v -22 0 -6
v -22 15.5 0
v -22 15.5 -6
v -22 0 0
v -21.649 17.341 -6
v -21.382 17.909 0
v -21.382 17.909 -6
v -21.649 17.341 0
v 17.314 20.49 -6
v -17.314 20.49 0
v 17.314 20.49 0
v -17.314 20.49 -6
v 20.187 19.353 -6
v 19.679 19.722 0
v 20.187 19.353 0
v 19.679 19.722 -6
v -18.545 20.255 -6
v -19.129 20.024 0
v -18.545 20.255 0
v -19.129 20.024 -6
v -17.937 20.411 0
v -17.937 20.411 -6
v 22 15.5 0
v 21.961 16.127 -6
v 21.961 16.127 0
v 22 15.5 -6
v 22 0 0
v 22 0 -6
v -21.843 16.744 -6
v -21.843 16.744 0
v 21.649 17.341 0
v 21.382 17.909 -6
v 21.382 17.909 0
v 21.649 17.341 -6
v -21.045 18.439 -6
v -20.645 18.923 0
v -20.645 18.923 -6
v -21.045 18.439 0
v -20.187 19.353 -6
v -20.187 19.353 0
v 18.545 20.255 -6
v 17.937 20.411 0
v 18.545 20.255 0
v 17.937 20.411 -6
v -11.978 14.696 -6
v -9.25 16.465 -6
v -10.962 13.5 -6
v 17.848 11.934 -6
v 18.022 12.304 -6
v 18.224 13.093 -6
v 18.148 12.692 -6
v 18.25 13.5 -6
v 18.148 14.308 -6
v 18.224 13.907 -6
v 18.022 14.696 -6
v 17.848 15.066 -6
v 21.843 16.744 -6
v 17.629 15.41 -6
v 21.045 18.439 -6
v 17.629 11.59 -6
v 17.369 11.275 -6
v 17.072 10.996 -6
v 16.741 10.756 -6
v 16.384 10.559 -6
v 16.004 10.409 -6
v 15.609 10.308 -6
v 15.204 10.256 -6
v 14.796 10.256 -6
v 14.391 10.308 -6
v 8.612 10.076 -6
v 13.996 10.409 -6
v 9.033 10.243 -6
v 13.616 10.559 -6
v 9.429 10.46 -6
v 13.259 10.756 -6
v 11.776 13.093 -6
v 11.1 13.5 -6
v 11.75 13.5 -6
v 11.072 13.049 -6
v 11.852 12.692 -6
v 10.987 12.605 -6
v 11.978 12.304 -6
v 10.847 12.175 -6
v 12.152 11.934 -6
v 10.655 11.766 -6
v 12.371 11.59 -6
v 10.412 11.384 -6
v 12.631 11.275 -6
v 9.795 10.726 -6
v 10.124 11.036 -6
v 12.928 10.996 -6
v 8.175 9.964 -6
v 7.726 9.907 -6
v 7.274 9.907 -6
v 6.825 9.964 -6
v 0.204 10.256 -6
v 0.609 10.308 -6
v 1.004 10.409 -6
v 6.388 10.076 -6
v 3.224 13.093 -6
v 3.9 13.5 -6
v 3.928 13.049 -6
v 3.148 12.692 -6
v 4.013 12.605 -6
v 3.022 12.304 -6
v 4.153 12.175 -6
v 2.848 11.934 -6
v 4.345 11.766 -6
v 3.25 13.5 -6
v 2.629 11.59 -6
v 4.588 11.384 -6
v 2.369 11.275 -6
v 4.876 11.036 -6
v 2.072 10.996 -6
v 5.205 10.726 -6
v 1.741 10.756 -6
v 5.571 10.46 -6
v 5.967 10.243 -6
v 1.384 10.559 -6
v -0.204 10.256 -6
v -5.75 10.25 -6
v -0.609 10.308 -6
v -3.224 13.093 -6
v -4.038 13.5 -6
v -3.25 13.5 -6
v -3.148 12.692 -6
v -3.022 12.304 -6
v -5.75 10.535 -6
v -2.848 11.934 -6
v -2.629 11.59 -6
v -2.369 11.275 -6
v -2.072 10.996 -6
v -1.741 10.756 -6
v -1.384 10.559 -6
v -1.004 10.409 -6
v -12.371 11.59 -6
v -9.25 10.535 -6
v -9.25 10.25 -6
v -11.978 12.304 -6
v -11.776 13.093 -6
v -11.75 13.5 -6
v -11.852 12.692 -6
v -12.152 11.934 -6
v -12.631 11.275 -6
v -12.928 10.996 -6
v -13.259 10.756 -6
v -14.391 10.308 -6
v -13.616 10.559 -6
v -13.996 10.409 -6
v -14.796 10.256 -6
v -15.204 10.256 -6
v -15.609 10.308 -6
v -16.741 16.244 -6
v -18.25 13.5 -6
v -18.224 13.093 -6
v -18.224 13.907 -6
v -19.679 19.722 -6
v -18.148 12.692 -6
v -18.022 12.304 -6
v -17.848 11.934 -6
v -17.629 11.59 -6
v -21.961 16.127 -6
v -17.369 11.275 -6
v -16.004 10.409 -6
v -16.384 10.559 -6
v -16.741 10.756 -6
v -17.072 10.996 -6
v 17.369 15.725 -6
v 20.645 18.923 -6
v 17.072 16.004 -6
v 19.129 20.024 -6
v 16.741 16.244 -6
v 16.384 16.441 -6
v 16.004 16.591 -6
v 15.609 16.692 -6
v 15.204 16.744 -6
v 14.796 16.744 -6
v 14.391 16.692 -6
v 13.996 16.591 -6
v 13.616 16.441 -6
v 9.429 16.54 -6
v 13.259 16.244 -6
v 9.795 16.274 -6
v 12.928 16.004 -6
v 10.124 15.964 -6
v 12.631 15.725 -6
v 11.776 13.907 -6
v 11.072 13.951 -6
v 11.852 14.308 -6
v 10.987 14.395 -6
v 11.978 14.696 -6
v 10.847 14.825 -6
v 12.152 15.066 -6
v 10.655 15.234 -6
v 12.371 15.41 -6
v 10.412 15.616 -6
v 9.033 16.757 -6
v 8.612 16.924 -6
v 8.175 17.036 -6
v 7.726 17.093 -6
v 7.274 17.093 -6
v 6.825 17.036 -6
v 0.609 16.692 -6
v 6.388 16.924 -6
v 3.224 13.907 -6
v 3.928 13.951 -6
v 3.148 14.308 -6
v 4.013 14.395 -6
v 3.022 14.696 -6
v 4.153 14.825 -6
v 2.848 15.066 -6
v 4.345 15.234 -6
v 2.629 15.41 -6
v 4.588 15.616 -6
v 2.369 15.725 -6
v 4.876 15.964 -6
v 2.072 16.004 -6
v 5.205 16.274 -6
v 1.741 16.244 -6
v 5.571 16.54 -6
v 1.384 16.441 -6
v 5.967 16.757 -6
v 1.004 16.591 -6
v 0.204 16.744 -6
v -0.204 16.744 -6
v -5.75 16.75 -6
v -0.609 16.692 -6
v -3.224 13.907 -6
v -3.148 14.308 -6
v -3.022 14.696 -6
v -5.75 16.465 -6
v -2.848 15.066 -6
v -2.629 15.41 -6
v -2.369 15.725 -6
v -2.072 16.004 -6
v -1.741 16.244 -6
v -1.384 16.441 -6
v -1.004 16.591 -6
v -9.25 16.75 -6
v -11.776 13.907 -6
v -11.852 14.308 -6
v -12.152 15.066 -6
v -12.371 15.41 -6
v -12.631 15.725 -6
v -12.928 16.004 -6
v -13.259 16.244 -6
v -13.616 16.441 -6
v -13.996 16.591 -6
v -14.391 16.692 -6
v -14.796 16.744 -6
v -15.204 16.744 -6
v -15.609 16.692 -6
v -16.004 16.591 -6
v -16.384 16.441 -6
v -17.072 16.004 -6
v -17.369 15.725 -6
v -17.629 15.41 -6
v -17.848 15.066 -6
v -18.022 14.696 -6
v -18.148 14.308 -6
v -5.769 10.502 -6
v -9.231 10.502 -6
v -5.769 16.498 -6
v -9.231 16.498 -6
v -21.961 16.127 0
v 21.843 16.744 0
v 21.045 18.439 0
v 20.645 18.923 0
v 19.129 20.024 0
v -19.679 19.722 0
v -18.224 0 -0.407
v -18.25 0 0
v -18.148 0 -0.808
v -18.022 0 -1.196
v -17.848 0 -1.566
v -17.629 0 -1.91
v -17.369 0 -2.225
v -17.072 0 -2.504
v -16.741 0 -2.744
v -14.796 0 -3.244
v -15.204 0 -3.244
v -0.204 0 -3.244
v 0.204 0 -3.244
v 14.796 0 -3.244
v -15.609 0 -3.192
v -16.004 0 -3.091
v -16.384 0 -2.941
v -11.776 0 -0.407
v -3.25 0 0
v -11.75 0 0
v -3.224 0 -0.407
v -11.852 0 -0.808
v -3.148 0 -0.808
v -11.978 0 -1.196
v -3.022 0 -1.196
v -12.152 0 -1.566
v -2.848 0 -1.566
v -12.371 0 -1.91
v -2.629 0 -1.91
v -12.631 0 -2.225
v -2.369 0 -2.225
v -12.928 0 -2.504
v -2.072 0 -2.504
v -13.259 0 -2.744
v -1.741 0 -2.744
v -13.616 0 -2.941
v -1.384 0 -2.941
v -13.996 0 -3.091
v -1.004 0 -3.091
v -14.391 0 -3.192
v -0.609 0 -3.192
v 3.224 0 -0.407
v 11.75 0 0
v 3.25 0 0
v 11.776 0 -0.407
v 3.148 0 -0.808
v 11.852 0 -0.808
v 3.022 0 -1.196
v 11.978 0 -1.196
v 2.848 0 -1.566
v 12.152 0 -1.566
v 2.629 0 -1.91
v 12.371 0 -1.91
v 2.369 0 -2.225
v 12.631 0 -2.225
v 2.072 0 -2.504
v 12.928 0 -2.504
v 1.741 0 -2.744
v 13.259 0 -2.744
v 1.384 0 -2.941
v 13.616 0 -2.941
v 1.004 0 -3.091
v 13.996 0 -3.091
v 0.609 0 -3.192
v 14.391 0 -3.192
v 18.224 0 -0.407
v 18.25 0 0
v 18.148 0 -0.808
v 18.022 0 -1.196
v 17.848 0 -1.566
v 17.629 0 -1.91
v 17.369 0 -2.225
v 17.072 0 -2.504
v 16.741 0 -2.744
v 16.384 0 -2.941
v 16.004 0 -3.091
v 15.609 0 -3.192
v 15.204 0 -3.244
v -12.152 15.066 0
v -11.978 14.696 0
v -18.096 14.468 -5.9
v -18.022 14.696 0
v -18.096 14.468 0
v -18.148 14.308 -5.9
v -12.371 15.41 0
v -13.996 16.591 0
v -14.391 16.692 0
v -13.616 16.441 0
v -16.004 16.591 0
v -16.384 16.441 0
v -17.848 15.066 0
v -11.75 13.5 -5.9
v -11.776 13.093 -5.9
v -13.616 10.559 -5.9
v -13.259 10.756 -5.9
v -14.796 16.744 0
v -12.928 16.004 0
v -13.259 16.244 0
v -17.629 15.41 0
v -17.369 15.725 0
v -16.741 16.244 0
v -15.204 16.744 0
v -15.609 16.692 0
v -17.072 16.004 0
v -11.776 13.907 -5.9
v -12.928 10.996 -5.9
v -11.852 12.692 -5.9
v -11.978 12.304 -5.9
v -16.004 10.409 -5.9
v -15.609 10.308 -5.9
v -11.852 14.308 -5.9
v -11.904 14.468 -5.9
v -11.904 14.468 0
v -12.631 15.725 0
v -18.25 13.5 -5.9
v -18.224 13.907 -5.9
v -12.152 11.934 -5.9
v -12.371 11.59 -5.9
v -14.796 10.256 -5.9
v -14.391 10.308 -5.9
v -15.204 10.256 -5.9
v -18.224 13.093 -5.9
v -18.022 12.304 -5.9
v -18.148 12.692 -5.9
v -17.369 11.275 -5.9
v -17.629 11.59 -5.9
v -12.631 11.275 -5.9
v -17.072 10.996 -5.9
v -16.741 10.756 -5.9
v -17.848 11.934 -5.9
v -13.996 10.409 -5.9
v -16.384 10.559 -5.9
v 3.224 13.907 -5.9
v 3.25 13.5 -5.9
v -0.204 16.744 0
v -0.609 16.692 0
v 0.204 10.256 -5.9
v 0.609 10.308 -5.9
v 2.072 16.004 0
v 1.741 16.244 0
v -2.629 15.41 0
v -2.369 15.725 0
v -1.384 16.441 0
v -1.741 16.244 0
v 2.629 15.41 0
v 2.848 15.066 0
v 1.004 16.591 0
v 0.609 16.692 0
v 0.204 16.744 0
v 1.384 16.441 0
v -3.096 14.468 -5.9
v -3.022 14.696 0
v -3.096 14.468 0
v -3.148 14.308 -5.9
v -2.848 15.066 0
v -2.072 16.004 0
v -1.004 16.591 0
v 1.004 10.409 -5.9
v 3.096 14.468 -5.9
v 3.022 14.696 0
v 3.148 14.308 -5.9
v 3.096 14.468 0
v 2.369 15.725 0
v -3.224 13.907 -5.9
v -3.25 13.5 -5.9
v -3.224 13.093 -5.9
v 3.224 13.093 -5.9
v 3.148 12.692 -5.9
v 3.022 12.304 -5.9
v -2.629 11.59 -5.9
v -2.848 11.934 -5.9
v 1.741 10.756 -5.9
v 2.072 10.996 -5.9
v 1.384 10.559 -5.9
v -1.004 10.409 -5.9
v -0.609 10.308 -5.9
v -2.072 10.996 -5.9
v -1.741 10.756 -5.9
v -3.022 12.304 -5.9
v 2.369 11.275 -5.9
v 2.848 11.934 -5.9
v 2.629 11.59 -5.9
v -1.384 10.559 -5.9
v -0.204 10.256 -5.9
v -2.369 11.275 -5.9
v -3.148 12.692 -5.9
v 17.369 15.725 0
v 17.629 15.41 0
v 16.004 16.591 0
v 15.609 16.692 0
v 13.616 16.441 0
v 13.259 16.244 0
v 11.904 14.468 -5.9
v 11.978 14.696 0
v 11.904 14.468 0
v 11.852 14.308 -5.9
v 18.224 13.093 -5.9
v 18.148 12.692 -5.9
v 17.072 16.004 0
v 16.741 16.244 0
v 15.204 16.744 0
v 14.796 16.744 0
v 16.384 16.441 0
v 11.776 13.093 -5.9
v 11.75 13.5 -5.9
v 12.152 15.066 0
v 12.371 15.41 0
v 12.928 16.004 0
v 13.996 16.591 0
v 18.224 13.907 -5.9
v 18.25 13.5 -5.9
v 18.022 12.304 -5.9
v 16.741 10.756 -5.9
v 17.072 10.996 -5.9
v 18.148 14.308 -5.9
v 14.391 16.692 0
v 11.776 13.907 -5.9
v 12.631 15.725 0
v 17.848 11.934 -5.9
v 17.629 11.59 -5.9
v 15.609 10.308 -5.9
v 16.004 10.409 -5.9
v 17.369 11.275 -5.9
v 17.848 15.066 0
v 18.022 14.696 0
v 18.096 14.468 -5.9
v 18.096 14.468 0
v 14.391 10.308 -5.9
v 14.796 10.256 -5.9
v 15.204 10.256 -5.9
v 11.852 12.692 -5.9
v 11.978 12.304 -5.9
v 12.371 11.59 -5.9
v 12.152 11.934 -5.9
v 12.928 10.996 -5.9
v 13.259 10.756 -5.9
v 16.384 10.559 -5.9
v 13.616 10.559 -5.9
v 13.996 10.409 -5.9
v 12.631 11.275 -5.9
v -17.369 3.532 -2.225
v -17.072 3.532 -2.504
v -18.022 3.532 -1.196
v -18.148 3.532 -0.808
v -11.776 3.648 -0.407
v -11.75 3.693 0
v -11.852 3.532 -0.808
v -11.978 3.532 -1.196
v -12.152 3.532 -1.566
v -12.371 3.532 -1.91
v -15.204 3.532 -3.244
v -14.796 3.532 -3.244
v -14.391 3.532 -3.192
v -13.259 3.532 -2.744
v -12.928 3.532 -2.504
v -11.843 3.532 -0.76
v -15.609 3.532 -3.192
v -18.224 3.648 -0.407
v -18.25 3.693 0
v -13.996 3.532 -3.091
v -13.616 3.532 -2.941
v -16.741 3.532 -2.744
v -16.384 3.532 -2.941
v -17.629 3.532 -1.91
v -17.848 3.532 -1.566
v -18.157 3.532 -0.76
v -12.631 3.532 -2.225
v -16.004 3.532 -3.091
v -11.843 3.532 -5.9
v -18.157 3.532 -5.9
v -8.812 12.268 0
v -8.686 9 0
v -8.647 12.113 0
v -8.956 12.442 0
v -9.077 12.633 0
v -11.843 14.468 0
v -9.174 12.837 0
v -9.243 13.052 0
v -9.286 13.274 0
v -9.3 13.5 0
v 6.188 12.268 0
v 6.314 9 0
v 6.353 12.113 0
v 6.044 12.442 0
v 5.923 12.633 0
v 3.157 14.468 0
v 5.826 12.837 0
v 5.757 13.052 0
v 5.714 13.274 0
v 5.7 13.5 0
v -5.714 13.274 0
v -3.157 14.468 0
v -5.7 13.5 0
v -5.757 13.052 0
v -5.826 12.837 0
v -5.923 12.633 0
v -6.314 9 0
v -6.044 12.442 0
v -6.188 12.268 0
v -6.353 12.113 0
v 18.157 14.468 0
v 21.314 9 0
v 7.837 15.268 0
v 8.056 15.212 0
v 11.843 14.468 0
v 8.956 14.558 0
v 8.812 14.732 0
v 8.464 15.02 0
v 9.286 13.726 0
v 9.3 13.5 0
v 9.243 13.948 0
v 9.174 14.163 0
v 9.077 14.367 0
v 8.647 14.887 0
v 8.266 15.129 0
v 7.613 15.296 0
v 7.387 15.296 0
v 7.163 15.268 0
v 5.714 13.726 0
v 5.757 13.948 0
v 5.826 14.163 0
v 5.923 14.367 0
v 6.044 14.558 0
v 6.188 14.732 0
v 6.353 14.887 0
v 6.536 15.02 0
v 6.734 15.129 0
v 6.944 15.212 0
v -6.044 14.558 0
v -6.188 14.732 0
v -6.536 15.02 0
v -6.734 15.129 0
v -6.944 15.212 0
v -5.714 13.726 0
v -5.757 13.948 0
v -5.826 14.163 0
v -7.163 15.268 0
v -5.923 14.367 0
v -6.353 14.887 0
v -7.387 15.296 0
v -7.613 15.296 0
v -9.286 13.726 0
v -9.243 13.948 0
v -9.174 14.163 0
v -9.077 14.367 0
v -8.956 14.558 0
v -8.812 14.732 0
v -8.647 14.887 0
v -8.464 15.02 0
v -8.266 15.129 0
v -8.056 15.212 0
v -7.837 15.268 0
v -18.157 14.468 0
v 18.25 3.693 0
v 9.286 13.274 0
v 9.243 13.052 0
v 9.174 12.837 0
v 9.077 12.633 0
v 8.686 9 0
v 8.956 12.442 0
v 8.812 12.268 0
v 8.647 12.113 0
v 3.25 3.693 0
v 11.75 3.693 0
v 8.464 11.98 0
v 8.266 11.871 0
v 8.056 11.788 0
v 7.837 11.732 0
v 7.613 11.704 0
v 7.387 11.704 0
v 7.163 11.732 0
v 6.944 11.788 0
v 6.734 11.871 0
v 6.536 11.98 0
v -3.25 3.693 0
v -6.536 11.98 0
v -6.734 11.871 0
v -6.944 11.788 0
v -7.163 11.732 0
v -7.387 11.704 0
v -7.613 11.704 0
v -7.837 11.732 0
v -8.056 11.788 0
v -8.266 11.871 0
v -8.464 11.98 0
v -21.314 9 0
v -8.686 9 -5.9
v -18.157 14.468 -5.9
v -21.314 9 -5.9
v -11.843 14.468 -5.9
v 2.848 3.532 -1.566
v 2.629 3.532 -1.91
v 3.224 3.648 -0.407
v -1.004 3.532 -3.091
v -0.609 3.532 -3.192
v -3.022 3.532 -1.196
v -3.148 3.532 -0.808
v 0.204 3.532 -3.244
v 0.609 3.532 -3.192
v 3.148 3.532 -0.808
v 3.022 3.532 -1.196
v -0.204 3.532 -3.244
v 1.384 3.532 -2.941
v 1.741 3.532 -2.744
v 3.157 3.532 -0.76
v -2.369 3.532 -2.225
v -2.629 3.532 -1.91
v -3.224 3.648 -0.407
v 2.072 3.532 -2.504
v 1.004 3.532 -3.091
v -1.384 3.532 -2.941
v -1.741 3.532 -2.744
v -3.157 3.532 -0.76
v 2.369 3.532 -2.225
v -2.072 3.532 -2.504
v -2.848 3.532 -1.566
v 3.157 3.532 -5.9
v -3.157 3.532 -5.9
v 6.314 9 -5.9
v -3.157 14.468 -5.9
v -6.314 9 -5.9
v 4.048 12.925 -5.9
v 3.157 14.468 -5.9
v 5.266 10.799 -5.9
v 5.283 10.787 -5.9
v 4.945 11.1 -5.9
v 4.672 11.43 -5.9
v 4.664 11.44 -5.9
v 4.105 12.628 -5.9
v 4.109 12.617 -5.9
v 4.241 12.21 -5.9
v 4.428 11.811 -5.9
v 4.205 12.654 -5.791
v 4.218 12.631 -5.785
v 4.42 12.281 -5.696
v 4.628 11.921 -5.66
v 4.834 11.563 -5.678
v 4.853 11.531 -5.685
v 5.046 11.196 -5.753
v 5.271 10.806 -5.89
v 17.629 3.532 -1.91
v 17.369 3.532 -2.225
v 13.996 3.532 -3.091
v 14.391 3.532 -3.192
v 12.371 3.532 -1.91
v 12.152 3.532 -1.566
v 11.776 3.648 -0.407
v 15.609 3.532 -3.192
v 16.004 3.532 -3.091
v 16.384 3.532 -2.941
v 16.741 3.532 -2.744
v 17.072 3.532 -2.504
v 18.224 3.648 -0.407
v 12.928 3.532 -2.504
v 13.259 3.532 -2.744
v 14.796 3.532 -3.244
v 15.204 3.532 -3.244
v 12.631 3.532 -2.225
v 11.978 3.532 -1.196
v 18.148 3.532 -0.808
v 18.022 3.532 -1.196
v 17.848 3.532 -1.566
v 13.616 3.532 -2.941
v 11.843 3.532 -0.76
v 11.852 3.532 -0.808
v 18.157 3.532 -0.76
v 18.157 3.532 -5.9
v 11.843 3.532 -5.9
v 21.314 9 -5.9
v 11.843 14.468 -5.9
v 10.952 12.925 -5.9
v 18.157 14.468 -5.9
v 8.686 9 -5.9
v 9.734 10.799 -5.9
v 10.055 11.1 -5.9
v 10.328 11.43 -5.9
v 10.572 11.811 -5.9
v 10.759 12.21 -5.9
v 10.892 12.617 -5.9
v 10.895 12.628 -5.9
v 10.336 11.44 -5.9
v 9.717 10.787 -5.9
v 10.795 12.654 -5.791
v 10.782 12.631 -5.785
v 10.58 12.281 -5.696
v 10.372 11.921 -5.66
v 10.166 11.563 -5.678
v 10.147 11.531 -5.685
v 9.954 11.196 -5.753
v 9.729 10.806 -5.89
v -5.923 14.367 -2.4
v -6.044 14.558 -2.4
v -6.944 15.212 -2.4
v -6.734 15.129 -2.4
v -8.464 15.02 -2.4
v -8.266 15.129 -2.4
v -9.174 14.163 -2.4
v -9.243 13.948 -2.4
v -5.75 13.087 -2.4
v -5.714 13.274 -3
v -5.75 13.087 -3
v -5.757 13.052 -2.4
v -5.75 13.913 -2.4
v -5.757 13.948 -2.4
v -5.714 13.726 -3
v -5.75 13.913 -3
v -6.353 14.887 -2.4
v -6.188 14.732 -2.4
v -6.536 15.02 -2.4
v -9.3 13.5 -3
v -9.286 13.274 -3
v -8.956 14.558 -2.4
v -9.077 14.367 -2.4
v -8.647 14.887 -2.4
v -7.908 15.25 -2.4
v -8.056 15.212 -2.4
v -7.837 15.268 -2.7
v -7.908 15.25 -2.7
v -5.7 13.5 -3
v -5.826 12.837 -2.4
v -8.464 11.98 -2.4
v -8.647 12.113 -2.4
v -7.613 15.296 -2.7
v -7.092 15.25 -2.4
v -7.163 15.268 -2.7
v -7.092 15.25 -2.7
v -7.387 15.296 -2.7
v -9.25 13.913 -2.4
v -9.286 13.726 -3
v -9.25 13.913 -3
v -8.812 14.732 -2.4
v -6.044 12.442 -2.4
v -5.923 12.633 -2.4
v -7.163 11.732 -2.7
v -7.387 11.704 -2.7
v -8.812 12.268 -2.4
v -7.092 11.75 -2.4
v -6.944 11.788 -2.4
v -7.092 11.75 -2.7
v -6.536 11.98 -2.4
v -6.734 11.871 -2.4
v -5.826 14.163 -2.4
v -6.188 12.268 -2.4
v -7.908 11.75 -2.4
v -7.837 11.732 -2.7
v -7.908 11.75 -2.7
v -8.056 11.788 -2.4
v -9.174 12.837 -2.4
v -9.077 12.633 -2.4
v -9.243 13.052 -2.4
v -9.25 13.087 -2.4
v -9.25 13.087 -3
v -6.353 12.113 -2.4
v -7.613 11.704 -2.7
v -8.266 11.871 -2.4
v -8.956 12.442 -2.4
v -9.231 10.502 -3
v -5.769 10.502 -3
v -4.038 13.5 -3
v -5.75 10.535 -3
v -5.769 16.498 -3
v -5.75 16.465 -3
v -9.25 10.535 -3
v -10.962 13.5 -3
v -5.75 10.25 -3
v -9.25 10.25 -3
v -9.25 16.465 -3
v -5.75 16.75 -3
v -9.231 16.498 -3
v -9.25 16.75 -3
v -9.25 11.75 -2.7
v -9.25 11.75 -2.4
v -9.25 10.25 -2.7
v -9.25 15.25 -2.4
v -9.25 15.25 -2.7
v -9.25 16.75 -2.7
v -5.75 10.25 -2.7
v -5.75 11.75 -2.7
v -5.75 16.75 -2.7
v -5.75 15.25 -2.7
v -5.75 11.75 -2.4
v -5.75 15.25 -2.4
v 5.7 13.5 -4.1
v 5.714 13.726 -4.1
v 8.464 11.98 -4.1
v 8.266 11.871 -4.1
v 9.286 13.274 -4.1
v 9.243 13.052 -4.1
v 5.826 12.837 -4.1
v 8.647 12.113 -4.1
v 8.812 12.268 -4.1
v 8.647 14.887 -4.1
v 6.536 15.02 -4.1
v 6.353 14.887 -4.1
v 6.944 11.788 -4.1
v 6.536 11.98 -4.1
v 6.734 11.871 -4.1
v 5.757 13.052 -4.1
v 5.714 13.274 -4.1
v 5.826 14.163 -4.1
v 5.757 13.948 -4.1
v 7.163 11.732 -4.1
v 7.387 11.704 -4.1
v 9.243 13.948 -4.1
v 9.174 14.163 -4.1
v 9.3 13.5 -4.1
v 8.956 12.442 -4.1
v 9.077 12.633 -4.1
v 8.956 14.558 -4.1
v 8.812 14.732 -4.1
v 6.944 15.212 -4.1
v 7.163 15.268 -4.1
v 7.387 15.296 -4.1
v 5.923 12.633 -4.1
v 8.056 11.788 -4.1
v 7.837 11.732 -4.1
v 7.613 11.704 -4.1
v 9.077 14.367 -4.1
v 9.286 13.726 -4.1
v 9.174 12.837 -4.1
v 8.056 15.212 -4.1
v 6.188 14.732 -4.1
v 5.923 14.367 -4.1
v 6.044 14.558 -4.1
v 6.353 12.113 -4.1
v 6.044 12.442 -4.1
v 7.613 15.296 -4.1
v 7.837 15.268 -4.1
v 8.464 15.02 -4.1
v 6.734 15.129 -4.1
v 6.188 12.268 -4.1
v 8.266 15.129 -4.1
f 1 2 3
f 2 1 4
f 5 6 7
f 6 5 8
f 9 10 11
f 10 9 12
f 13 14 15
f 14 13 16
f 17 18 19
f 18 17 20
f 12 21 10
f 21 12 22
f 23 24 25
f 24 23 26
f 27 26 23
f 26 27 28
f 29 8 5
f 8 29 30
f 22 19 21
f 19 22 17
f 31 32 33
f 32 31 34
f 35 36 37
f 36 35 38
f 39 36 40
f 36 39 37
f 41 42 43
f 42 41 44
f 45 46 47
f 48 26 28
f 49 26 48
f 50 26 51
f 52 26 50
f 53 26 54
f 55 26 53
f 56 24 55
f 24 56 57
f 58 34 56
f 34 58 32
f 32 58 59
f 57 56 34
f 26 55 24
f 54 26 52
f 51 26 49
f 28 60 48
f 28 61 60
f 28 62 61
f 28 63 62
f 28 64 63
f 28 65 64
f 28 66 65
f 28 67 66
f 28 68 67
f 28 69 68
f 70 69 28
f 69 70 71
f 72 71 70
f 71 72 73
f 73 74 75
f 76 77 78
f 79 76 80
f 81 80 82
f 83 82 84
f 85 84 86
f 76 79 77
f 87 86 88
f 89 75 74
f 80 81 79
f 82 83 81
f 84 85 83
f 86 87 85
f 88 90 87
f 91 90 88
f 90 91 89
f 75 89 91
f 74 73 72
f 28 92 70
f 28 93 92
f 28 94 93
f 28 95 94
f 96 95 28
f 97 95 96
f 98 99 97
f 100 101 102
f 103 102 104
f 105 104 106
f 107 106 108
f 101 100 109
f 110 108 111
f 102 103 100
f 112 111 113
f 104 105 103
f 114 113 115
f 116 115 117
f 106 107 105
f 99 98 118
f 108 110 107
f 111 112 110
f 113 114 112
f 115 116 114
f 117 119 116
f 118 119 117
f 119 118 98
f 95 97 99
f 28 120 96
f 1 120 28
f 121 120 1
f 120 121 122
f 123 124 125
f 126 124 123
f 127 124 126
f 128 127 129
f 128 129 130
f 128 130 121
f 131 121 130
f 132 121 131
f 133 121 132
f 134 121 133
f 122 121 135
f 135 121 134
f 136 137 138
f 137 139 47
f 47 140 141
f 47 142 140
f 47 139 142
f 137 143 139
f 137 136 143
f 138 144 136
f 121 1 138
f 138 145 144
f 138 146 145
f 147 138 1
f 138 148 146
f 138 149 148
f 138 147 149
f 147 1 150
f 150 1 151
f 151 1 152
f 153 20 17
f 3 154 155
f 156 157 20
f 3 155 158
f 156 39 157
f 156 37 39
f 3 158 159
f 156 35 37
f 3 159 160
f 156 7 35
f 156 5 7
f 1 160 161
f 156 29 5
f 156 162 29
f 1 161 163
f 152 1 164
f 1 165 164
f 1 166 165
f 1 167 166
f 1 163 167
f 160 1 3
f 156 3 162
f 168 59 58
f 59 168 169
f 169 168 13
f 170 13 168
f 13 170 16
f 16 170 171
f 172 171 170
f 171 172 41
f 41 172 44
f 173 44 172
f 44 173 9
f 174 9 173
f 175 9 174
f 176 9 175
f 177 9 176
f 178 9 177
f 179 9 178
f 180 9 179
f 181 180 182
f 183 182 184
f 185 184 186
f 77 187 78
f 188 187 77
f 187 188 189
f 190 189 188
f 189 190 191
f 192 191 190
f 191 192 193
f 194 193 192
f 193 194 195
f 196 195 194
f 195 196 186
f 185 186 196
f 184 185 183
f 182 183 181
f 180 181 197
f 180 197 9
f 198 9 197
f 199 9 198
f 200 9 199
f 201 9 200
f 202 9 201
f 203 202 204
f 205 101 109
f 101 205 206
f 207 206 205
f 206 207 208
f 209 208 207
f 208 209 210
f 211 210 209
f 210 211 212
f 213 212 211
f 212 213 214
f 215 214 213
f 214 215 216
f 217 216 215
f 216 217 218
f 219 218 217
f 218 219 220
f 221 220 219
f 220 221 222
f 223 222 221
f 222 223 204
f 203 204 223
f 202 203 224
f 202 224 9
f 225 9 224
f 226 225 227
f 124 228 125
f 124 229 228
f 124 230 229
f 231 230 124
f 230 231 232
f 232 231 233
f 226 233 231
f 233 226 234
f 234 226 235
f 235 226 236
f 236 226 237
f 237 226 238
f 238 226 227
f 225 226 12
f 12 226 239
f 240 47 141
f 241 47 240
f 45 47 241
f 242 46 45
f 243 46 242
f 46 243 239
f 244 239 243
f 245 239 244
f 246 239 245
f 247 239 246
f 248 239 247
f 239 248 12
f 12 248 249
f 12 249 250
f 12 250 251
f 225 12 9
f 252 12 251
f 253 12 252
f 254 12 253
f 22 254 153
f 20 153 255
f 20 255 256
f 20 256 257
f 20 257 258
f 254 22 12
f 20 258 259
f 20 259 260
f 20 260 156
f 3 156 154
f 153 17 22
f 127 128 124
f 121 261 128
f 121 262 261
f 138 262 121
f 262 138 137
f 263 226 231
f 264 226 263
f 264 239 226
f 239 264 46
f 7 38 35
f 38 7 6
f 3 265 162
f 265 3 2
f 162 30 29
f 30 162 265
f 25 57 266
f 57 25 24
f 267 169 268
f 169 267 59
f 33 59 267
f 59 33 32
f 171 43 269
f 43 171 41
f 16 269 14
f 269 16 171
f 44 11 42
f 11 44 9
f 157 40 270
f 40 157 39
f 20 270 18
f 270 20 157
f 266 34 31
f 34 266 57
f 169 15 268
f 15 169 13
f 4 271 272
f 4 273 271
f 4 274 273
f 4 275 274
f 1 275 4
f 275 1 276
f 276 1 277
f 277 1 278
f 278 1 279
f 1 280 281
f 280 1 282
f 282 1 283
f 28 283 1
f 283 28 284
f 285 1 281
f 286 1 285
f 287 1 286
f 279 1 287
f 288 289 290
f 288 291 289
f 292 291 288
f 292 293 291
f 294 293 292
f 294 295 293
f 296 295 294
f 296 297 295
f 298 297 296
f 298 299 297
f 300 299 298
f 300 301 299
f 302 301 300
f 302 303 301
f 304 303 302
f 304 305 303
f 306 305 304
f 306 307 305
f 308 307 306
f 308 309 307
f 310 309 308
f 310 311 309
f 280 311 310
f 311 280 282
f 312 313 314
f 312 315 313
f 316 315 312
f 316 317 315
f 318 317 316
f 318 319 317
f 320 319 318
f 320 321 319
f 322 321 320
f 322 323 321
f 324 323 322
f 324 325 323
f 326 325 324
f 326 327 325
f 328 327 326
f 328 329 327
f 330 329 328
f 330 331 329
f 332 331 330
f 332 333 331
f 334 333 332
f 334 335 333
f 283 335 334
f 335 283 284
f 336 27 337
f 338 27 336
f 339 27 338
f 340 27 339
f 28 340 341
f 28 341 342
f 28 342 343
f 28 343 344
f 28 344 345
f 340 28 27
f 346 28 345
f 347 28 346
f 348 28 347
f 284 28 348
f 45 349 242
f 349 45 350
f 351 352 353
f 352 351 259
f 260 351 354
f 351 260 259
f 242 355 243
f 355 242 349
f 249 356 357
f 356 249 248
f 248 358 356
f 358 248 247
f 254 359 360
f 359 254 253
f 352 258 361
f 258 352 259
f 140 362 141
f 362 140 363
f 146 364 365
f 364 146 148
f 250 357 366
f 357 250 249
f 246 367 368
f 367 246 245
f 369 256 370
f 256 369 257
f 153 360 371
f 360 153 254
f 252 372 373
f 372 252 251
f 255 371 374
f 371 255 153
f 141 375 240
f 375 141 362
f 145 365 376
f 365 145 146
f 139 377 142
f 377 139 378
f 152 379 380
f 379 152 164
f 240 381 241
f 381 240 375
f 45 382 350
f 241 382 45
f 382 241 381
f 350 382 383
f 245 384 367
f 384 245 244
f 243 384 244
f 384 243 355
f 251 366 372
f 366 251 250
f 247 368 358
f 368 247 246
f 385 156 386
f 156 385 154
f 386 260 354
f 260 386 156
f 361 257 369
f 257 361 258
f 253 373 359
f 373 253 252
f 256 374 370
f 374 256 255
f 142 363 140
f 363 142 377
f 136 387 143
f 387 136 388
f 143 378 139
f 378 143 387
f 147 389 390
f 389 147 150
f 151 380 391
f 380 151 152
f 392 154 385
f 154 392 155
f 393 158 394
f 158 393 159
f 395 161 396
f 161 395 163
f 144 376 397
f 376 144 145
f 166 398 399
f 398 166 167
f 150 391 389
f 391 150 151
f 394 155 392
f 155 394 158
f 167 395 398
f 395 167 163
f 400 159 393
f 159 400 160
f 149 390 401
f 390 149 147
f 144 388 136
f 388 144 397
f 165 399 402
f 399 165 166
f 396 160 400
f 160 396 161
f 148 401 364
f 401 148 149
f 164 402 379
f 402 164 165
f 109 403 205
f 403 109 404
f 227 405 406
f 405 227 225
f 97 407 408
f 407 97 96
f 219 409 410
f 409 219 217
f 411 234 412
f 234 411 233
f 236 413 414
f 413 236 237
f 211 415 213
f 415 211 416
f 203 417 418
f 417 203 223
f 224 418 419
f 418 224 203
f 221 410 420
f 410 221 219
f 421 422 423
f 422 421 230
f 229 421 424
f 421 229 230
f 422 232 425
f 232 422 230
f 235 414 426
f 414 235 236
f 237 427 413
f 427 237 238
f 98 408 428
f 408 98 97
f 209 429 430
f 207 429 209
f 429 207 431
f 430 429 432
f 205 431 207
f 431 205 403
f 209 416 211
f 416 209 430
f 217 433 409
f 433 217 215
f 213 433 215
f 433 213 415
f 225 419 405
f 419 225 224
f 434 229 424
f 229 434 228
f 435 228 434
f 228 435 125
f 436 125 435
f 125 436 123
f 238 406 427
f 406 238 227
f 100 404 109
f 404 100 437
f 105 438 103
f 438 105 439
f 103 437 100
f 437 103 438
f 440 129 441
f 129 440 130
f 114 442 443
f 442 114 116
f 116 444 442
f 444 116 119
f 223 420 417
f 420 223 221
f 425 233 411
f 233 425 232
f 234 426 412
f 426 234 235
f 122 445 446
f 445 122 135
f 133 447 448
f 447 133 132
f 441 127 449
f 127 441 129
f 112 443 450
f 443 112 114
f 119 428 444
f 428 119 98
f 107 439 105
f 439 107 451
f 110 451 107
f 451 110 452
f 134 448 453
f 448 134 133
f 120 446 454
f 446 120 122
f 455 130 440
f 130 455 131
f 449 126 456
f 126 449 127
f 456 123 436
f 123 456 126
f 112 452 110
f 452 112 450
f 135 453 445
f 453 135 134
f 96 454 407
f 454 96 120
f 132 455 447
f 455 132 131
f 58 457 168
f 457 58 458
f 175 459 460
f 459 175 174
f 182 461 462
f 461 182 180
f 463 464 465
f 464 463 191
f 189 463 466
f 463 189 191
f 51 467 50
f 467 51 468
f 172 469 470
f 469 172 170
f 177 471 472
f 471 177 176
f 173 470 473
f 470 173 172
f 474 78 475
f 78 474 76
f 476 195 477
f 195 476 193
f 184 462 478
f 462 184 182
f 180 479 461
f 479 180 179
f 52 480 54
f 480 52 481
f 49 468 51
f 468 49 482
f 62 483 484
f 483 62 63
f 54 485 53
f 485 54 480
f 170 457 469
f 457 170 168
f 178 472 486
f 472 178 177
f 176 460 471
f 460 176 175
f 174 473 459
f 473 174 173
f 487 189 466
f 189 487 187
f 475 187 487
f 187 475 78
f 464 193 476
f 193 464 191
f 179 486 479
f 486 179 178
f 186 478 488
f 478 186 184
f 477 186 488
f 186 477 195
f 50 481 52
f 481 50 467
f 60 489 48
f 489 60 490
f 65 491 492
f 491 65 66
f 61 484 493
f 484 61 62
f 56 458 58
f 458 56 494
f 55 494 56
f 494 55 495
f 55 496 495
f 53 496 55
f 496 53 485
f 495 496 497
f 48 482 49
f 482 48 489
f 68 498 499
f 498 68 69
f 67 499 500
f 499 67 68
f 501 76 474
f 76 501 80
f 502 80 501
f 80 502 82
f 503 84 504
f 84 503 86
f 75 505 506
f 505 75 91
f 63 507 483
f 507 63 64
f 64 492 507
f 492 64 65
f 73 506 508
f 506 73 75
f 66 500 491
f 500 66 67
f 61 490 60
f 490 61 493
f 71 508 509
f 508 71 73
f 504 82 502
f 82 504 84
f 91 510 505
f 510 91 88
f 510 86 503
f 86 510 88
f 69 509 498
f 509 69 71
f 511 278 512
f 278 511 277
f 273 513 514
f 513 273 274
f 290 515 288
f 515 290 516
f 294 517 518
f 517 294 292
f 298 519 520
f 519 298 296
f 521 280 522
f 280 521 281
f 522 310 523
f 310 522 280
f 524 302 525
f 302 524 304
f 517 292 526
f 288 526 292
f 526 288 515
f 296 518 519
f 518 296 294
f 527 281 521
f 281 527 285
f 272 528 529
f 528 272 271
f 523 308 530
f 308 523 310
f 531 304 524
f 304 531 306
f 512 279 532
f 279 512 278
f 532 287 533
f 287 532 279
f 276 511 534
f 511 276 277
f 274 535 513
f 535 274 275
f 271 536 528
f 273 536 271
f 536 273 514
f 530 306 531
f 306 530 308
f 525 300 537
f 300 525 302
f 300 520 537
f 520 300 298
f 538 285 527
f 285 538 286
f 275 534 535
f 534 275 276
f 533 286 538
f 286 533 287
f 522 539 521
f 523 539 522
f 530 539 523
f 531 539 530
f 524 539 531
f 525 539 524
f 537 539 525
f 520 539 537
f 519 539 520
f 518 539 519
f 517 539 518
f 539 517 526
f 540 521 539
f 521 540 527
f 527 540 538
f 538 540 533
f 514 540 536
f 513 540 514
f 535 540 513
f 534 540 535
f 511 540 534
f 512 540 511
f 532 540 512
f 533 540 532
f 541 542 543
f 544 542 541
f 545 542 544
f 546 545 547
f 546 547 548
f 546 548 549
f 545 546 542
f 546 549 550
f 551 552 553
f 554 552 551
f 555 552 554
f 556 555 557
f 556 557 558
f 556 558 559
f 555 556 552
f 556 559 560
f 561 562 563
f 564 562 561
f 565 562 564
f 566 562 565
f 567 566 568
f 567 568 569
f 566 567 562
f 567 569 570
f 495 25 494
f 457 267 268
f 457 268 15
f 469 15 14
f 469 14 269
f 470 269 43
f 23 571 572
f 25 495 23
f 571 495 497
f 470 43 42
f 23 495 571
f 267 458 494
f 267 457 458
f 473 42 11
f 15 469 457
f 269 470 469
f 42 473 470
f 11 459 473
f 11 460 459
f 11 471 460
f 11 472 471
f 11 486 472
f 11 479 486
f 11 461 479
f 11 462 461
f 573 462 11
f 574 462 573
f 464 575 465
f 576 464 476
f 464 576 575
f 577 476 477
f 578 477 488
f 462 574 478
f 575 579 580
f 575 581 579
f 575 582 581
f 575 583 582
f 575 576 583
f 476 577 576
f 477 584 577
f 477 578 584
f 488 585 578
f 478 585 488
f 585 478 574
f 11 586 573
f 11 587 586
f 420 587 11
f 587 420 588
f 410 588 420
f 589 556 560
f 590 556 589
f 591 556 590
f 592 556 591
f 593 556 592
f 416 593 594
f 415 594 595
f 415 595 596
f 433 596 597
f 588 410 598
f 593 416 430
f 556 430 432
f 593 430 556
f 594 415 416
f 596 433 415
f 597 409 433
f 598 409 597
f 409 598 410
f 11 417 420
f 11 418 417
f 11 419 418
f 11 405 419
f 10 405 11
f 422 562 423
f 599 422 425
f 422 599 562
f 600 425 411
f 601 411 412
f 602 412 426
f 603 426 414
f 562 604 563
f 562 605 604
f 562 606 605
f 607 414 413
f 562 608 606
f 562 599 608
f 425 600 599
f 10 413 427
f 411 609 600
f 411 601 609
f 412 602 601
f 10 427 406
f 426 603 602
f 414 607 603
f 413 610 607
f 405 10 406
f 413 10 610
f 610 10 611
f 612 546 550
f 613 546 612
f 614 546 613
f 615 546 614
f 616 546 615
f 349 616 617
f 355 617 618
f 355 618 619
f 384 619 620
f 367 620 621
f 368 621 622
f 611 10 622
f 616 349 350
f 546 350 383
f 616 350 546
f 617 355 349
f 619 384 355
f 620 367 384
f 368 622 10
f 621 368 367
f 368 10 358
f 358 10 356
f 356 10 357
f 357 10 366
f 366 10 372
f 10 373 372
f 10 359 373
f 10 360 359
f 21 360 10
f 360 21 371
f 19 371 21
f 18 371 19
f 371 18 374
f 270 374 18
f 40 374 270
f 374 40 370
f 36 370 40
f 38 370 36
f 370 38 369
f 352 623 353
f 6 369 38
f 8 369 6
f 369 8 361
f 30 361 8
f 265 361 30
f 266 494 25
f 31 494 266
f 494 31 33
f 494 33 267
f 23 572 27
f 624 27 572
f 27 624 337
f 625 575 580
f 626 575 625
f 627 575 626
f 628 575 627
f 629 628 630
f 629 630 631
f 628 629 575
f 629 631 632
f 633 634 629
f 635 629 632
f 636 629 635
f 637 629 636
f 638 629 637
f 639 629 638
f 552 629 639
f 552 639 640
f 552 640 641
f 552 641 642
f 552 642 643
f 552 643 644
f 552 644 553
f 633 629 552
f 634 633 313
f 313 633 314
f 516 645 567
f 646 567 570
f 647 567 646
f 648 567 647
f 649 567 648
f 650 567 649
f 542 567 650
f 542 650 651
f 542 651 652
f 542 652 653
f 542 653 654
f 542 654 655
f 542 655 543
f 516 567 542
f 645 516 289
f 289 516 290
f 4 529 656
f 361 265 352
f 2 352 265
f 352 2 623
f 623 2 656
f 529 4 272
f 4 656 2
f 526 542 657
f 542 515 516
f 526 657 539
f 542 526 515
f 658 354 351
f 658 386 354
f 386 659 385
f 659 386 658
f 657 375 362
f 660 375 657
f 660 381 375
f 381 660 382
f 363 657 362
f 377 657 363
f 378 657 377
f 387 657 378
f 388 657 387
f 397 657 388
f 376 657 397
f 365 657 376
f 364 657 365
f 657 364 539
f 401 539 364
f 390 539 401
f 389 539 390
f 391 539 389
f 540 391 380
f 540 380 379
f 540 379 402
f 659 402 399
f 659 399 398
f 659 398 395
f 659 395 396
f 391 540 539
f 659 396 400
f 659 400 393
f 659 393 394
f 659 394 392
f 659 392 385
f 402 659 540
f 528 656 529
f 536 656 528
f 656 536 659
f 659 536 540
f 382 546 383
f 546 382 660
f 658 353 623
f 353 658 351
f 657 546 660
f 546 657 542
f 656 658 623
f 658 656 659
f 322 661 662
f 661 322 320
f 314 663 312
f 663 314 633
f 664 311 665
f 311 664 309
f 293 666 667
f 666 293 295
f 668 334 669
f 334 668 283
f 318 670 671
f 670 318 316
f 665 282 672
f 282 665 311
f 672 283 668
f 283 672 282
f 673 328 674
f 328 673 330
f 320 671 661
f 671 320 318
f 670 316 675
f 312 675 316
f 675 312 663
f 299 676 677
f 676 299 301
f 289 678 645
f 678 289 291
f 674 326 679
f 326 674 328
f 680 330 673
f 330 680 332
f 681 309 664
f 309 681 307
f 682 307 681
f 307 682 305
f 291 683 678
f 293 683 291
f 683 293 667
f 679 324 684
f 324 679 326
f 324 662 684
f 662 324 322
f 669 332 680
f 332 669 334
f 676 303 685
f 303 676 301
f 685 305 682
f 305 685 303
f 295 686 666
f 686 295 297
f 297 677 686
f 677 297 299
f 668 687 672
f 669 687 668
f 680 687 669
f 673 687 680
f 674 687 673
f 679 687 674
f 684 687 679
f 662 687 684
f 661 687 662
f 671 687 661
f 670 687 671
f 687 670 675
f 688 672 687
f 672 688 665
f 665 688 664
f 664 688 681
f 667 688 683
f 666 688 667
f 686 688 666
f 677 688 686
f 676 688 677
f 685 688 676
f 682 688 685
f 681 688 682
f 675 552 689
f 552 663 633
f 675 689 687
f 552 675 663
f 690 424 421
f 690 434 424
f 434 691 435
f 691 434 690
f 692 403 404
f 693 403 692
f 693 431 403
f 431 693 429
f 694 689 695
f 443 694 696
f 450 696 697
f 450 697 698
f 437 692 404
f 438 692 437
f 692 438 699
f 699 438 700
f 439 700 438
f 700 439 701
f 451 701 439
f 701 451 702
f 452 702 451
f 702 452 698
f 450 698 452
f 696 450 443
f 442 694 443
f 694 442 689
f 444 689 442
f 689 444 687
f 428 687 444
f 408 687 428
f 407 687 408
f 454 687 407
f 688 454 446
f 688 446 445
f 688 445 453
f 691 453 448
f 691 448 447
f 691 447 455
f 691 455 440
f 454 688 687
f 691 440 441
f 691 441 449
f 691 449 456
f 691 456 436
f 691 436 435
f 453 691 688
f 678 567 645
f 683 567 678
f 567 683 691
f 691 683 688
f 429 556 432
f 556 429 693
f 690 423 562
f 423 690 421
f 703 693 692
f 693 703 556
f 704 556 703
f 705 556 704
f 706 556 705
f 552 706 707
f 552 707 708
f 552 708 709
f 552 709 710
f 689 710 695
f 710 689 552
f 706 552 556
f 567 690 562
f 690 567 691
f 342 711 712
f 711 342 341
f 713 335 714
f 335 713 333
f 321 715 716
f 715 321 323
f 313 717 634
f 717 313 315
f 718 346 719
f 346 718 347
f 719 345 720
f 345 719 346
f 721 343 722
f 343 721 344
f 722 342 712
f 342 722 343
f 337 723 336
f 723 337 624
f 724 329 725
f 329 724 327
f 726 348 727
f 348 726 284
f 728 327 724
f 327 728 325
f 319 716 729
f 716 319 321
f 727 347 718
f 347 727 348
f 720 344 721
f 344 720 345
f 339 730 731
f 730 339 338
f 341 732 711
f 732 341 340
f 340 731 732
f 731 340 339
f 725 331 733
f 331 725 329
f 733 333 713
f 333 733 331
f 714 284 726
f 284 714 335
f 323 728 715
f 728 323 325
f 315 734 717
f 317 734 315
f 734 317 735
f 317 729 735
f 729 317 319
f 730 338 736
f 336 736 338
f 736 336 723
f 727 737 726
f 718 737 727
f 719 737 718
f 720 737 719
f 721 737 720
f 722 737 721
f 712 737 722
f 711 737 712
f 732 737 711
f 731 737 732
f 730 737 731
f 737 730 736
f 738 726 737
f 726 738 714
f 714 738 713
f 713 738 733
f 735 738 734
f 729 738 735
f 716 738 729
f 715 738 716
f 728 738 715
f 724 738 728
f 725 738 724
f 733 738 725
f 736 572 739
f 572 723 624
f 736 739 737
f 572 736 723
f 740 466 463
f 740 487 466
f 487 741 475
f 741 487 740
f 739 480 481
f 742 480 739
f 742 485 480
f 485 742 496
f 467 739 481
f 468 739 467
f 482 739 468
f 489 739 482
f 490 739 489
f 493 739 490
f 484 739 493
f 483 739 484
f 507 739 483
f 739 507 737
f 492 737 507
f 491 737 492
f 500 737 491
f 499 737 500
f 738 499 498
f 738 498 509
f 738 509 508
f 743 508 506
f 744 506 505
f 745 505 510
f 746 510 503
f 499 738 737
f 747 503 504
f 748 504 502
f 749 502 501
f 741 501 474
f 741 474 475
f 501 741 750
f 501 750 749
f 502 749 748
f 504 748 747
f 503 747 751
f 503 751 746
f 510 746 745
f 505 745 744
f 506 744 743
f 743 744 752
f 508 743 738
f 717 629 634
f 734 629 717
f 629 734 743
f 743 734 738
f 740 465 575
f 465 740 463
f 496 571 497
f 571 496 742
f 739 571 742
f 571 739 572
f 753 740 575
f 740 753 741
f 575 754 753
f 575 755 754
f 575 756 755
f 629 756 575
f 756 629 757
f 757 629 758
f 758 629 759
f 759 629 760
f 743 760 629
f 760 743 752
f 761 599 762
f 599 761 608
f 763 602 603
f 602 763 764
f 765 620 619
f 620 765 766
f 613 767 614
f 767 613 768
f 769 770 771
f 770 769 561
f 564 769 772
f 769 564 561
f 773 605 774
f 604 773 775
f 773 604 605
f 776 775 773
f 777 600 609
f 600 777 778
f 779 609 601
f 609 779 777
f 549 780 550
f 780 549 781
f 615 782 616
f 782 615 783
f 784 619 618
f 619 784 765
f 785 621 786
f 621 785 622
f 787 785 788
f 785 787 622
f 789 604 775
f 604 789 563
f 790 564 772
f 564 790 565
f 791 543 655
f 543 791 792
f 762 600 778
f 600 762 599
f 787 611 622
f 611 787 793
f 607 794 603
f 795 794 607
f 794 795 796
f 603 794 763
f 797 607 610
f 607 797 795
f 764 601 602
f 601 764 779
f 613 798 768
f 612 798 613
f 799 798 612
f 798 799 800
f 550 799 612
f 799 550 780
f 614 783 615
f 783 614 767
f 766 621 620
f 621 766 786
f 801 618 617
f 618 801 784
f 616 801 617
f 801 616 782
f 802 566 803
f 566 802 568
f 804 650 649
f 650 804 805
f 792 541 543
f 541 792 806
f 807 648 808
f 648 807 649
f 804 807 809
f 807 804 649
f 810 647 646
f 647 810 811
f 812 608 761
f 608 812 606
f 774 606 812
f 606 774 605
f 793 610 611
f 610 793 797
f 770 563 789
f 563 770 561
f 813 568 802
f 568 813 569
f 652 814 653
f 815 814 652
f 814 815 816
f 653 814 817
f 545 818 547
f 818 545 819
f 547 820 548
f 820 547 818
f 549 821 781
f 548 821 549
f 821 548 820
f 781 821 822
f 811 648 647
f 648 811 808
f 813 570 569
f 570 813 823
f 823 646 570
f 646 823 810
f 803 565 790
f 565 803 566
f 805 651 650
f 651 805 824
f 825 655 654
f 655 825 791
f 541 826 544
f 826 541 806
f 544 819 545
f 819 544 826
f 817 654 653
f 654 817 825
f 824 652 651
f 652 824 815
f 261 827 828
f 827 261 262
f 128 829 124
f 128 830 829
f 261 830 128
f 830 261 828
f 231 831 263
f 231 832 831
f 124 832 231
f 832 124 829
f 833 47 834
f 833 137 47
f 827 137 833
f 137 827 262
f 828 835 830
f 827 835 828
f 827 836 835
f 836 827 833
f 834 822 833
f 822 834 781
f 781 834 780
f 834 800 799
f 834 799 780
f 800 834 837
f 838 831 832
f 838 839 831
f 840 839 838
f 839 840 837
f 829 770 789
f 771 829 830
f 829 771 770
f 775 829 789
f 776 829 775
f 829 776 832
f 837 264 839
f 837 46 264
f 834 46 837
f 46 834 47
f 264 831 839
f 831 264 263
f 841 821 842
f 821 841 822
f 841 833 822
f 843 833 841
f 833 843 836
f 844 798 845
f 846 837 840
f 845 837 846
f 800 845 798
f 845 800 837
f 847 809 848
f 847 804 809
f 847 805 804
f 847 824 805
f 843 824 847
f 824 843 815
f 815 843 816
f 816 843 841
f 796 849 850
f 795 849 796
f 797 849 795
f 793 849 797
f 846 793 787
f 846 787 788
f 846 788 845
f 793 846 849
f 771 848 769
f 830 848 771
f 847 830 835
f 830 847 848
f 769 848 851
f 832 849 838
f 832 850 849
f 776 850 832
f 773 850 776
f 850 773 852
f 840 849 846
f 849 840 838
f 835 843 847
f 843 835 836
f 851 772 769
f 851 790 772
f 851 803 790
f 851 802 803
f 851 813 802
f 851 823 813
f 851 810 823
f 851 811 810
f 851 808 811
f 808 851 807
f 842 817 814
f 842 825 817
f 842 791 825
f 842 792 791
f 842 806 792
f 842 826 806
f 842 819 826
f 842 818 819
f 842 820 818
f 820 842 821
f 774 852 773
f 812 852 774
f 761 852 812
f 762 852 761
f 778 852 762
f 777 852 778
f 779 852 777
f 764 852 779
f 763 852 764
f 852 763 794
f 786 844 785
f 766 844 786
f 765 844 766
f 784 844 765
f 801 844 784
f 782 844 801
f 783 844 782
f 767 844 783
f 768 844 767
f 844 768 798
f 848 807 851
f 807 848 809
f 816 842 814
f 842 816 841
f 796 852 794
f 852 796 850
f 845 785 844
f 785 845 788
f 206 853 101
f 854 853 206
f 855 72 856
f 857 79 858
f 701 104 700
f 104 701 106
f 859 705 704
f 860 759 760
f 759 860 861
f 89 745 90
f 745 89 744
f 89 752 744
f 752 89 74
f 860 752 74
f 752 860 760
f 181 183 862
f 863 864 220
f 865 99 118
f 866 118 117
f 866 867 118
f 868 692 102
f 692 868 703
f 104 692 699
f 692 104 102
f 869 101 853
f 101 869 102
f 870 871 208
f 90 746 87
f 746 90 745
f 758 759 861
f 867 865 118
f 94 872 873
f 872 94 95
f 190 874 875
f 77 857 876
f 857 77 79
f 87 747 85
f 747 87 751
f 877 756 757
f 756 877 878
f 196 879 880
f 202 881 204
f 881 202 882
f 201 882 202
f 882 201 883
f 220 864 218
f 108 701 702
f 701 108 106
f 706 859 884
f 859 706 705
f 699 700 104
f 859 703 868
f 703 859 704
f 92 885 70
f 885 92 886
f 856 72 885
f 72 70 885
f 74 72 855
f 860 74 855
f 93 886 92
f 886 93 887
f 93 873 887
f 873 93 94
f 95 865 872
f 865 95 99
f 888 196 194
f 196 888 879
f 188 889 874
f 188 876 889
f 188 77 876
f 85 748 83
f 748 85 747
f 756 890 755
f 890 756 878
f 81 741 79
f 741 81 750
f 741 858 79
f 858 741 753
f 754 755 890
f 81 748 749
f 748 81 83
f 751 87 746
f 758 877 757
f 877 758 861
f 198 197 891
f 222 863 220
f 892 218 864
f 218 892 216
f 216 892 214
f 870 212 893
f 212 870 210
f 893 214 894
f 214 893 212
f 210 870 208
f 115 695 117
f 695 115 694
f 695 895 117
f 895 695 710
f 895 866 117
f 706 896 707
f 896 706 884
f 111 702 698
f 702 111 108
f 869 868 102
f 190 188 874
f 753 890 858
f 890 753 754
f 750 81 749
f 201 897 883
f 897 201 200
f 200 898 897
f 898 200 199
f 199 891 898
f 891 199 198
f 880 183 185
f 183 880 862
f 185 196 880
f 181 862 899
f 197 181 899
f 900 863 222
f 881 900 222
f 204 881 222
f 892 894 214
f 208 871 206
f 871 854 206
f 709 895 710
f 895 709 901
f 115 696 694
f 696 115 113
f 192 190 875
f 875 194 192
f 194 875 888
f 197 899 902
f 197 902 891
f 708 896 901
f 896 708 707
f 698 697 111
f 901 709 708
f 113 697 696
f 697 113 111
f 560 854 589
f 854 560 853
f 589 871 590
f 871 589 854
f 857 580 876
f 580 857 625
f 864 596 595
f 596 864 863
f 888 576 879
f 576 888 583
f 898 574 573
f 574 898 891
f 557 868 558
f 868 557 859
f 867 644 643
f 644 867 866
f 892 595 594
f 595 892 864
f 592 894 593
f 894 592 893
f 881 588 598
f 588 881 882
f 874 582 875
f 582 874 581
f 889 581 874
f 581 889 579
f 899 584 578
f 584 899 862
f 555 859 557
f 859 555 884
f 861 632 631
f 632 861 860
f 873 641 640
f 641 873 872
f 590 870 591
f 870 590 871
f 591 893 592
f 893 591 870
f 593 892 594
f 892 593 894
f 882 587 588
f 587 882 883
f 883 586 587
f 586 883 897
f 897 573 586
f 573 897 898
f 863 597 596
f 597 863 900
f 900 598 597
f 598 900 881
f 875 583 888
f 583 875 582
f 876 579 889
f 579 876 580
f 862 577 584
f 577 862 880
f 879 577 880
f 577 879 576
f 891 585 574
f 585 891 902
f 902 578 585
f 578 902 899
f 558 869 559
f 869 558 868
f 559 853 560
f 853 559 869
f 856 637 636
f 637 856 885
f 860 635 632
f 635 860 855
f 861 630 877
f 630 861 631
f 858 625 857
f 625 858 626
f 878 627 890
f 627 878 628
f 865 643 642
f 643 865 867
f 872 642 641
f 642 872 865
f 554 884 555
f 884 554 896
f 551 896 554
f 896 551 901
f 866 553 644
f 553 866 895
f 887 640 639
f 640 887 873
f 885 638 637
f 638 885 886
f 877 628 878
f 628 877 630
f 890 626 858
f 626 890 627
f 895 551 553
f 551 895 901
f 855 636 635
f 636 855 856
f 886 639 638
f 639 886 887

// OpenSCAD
$fn = 50;


difference() {
	union() {
		translate(v = [0, 13.5000000000, -6.0000000000]) {
			rotate(a = [0, 0, 0]) {
				hull() {
					translate(v = [-17.0000000000, 2.0000000000, 0]) {
						rotate(a = [0, 0, 0]) {
							translate(v = [0, 0, 0]) {
								rotate(a = [0, 0, 0]) {
									cylinder(h = 12, r = 5);
								}
							}
						}
					}
					translate(v = [17.0000000000, 2.0000000000, 0]) {
						rotate(a = [0, 0, 0]) {
							translate(v = [0, 0, 0]) {
								rotate(a = [0, 0, 0]) {
									cylinder(h = 12, r = 5);
								}
							}
						}
					}
					translate(v = [-17.0000000000, -2.0000000000, 0]) {
						rotate(a = [0, 0, 0]) {
							translate(v = [0, 0, 0]) {
								rotate(a = [0, 0, 0]) {
									cylinder(h = 12, r = 5);
								}
							}
						}
					}
					translate(v = [17.0000000000, -2.0000000000, 0]) {
						rotate(a = [0, 0, 0]) {
							translate(v = [0, 0, 0]) {
								rotate(a = [0, 0, 0]) {
									cylinder(h = 12, r = 5);
								}
							}
						}
					}
				}
			}
		}
		translate(v = [-22.0000000000, 0, -6.0000000000]) {
			rotate(a = [0, 0, 0]) {
				cube(size = [44, 13.5000000000, 12]);
			}
		}
	}
	union() {
		translate(v = [-15.0000000000, 13.5000000000, -6.0000000000]) {
			rotate(a = [0, 0, 0]) {
				translate(v = [0, 0, -50]) {
					rotate(a = [0, 0, 0]) {
						cylinder(h = 100, r = 3.2500000000);
					}
				}
			}
		}
		translate(v = [0.0000000000, 13.5000000000, -6.0000000000]) {
			rotate(a = [0, 0, 0]) {
				translate(v = [0, 0, -50]) {
					rotate(a = [0, 0, 0]) {
						cylinder(h = 100, r = 3.2500000000);
					}
				}
			}
		}
		translate(v = [15.0000000000, 13.5000000000, -6.0000000000]) {
			rotate(a = [0, 0, 0]) {
				translate(v = [0, 0, -50]) {
					rotate(a = [0, 0, 0]) {
						cylinder(h = 100, r = 3.2500000000);
					}
				}
			}
		}
		translate(v = [-15.0000000000, 13.5000000000, 0]) {
			rotate(a = [90, 0, 0]) {
				cylinder(h = 13.5000000000, r = 3.2500000000);
			}
		}
		translate(v = [-15.0000000000, 9, 0]) {
			rotate(a = [90, 0, 0]) {
				translate(v = [0, 0, 0]) {
					rotate(a = [90, 0, 0]) {
						linear_extrude(height = 5.9000000000) {
							polygon(points = [[6.3142500000, 0.0000000000], [3.1571250000, 5.4683009058], [-3.1571250000, 5.4683009058], [-6.3142500000, 0.0000000000], [-3.1571250000, -5.4683009058], [3.1571250000, -5.4683009058]]);
						}
					}
				}
			}
		}
		translate(v = [0.0000000000, 13.5000000000, 0]) {
			rotate(a = [90, 0, 0]) {
				cylinder(h = 13.5000000000, r = 3.2500000000);
			}
		}
		translate(v = [0.0000000000, 9, 0]) {
			rotate(a = [90, 0, 0]) {
				translate(v = [0, 0, 0]) {
					rotate(a = [90, 0, 0]) {
						linear_extrude(height = 5.9000000000) {
							polygon(points = [[6.3142500000, 0.0000000000], [3.1571250000, 5.4683009058], [-3.1571250000, 5.4683009058], [-6.3142500000, 0.0000000000], [-3.1571250000, -5.4683009058], [3.1571250000, -5.4683009058]]);
						}
					}
				}
			}
		}
		translate(v = [15.0000000000, 13.5000000000, 0]) {
			rotate(a = [90, 0, 0]) {
				cylinder(h = 13.5000000000, r = 3.2500000000);
			}
		}
		translate(v = [15.0000000000, 9, 0]) {
			rotate(a = [90, 0, 0]) {
				translate(v = [0, 0, 0]) {
					rotate(a = [90, 0, 0]) {
						linear_extrude(height = 5.9000000000) {
							polygon(points = [[6.3142500000, 0.0000000000], [3.1571250000, 5.4683009058], [-3.1571250000, 5.4683009058], [-6.3142500000, 0.0000000000], [-3.1571250000, -5.4683009058], [3.1571250000, -5.4683009058]]);
						}
					}
				}
			}
		}
		translate(v = [-7.5000000000, 13.5000000000, 4.1000000000]) {
			rotate(a = [0, 0, 0]) {
				cylinder(h = 1.9000000000, r1 = 1.8000000000, r2 = 3.6000000000);
			}
		}
		translate(v = [-7.5000000000, 13.5000000000, -6.0000000000]) {
			rotate(a = [0, 0, 0]) {
				cylinder(h = 12, r = 1.8000000000);
			}
		}
		translate(v = [-7.5000000000, 13.5000000000, -6.0000000000]) {
			rotate(a = [0, 0, 0]) {
				translate(v = [0, 0, 0]) {
					rotate(a = [0, 0, 0]) {
						linear_extrude(height = 3) {
							polygon(points = [[3.4620000000, 0.0000000000], [1.7310000000, 2.9981799479], [-1.7310000000, 2.9981799479], [-3.4620000000, 0.0000000000], [-1.7310000000, -2.9981799479], [1.7310000000, -2.9981799479]]);
						}
					}
				}
			}
		}
		translate(v = [-9.2500000000, 10.2500000000, -3.0000000000]) {
			rotate(a = [0, 0, 0]) {
				cube(size = [3.5000000000, 6.5000000000, 0.3000000000]);
			}
		}
		translate(v = [-9.2500000000, 11.7500000000, -2.7000000000]) {
			rotate(a = [0, 0, 0]) {
				cube(size = [3.5000000000, 3.5000000000, 0.3000000000]);
			}
		}
		translate(v = [-9.2500000000, 10.2500000000, -6.3000000000]) {
			rotate(a = [0, 0, 0]) {
				cube(size = [3.5000000000, 6.5000000000, 0.3000000000]);
			}
		}
		translate(v = [-9.2500000000, 11.7500000000, -6.6000000000]) {
			rotate(a = [0, 0, 0]) {
				cube(size = [3.5000000000, 3.5000000000, 0.3000000000]);
			}
		}
		translate(v = [7.5000000000, 13.5000000000, -4.1000000000]) {
			rotate(a = [0, 180, 0]) {
				cylinder(h = 1.9000000000, r1 = 1.8000000000, r2 = 3.6000000000);
			}
		}
		translate(v = [7.5000000000, 13.5000000000, 6.0000000000]) {
			rotate(a = [0, 180, 0]) {
				cylinder(h = 12, r = 1.8000000000);
			}
		}
		translate(v = [7.5000000000, 13.5000000000, 3.0000000000]) {
			rotate(a = [0, 180, 0]) {
				translate(v = [0, 0, 0]) {
					rotate(a = [0, 180, 0]) {
						linear_extrude(height = 3) {
							polygon(points = [[3.4620000000, 0.0000000000], [1.7310000000, 2.9981799479], [-1.7310000000, 2.9981799479], [-3.4620000000, 0.0000000000], [-1.7310000000, -2.9981799479], [1.7310000000, -2.9981799479]]);
						}
					}
				}
			}
		}
		translate(v = [5.7500000000, 10.2500000000, 6.0000000000]) {
			rotate(a = [0, 0, 0]) {
				cube(size = [3.5000000000, 6.5000000000, 0.3000000000]);
			}
		}
		translate(v = [5.7500000000, 11.7500000000, 6.3000000000]) {
			rotate(a = [0, 0, 0]) {
				cube(size = [3.5000000000, 3.5000000000, 0.3000000000]);
			}
		}
		translate(v = [5.7500000000, 10.2500000000, 2.7000000000]) {
			rotate(a = [0, 0, 0]) {
				cube(size = [3.5000000000, 6.5000000000, 0.3000000000]);
			}
		}
		translate(v = [5.7500000000, 11.7500000000, 2.4000000000]) {
			rotate(a = [0, 0, 0]) {
				cube(size = [3.5000000000, 3.5000000000, 0.3000000000]);
			}
		}
		translate(v = [-250.0000000000, -250.0000000000, 0]) {
			rotate(a = [0, 0, 0]) {
				cube(size = [500, 500, 500]);
			}
		}
	}
}
